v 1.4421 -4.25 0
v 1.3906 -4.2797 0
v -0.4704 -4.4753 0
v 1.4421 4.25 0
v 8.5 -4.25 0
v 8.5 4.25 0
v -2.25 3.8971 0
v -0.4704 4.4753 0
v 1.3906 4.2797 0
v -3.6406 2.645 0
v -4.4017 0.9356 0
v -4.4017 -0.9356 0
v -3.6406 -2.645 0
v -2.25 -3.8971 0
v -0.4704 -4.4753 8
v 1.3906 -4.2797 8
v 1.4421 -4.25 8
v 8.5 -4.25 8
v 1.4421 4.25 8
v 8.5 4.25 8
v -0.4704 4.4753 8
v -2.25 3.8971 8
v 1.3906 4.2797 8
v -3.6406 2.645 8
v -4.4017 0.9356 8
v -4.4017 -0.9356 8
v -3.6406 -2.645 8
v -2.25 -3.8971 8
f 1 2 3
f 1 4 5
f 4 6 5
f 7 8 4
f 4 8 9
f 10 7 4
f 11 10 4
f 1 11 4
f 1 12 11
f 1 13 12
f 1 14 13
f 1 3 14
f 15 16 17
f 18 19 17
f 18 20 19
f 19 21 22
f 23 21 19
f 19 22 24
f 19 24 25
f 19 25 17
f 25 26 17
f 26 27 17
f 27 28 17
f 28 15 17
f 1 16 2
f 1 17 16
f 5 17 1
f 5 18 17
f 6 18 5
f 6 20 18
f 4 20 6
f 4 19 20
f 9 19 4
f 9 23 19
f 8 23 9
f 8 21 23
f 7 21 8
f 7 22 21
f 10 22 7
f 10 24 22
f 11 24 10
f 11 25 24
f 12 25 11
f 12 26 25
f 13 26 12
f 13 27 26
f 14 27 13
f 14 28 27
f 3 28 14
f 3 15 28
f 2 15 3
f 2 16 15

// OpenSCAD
linear_extrude(8) {circle(9/2);translate([0,-8.5/2]) square(8.5);}
